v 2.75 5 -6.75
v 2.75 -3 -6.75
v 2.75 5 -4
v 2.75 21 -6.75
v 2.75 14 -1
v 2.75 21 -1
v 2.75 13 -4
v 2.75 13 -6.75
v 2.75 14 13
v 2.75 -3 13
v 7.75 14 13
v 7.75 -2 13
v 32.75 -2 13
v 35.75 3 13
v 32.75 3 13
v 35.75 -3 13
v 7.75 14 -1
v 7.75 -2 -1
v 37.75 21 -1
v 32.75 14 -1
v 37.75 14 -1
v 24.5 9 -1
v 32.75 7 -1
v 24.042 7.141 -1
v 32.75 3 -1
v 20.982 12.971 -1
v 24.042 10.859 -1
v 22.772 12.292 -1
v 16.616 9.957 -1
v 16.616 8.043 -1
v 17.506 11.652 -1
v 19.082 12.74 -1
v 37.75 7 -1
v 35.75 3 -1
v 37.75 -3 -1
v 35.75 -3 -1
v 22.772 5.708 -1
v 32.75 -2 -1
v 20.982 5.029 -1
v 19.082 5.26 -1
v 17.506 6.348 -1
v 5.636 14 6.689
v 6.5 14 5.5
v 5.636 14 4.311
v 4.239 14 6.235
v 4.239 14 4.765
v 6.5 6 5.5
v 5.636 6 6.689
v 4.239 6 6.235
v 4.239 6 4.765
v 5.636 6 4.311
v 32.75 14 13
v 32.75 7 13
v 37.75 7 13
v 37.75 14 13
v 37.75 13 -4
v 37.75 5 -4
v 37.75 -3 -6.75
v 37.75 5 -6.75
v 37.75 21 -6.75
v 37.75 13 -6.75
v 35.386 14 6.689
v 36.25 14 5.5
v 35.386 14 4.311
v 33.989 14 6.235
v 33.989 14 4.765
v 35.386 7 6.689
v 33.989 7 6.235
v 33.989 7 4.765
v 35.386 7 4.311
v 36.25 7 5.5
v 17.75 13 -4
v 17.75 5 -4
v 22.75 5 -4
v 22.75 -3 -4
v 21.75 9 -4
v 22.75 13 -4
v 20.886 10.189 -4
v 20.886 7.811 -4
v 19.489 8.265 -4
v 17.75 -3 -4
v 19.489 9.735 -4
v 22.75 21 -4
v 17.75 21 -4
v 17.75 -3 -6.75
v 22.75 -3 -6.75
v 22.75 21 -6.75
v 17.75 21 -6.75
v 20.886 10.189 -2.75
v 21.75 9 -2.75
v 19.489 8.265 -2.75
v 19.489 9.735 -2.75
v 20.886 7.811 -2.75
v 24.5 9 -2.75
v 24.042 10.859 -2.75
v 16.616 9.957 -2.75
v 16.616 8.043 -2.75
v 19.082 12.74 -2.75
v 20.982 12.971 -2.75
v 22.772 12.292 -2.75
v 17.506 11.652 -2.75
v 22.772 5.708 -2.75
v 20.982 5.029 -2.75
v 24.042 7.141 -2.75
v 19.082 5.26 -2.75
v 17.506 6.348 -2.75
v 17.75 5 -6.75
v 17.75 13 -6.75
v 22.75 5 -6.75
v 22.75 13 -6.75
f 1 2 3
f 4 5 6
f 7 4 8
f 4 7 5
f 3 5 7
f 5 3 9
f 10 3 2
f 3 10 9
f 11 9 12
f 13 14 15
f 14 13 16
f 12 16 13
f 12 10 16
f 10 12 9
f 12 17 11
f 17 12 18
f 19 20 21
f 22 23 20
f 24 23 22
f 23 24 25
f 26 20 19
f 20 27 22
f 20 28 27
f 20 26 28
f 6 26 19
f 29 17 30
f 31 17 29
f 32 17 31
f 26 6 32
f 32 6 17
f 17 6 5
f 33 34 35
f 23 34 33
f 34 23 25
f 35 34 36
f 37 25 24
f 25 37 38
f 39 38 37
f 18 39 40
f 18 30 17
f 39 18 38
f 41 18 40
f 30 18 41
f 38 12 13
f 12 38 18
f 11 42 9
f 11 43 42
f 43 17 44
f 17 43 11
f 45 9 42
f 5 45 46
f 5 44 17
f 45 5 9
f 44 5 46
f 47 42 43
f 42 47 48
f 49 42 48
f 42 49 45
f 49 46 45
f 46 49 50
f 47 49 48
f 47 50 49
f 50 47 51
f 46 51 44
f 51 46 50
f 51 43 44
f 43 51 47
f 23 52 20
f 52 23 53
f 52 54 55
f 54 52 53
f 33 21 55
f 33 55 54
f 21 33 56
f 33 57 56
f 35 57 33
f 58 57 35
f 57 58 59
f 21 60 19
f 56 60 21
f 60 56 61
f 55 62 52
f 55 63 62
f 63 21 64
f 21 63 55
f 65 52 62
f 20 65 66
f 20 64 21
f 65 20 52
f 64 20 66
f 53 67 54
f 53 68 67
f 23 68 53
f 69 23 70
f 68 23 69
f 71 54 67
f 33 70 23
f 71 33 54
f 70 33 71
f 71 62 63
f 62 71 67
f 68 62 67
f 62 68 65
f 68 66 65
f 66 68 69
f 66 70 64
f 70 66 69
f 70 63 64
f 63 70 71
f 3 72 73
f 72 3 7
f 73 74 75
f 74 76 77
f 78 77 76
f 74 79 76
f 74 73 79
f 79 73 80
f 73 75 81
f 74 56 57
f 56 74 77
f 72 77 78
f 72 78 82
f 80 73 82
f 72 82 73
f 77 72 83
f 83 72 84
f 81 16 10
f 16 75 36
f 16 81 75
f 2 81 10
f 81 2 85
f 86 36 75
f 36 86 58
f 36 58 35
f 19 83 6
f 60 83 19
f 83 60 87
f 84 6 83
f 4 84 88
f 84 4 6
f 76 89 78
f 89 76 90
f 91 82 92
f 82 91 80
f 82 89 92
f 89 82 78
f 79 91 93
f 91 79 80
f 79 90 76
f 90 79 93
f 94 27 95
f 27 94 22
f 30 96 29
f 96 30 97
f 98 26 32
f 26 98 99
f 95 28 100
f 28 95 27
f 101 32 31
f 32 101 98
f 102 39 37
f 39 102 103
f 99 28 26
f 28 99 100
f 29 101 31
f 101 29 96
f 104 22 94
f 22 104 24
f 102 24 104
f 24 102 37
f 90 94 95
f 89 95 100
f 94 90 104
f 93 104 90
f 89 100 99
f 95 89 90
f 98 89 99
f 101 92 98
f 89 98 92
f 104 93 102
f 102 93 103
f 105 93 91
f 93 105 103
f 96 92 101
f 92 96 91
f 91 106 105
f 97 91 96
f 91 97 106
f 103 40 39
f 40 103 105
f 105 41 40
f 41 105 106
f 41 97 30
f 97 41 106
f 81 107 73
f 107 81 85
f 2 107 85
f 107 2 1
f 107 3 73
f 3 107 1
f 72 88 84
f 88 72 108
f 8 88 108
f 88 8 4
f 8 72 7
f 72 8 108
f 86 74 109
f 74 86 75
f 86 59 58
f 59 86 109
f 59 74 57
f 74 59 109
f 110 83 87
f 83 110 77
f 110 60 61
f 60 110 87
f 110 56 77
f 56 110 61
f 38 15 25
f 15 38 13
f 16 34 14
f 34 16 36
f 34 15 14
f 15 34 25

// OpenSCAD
difference()
{
translate([2.75,-2,-1])
{
    cube([5,16,14]);
}

translate([5.25,14,5.5])
{
    rotate([90,0,0])
    {
    cylinder(8,1.25,1.25);
    }
}

}

difference()
{
translate([2.75,-3,-4])
{
    cube([35,24,3]);
}

translate([20.5,9,-4.5])
{
cylinder(2,1.25,1.25);
}

translate([20.5,9,-2.75])
{
cylinder(3,4,4);
}


}

translate([2.75,-3,-6.75])
{
cube([15,8,2.75]);
}

translate([2.75,13,-6.75])
{
cube([15,8,2.75]);
}

translate([22.75,-3,-6.75])
{
cube([15,8,2.75]);
}

translate([22.75,13,-6.75])
{
cube([15,8,2.75]);
}

translate([32.75,-2,-1])
{
    cube([3,5,14]);
}

translate([2.75,-3,-1])
{
    cube([33,1,14]);
}


difference()
{
    
translate([32.75,7,-1])
{
    cube([5,7,14]);
}

translate([35,14,5.5])
{
    rotate([90,0,0])
    {
    cylinder(8,1.25,1.25);
    }
}

}

translate([0,0,14])
{
    rotate([-90,0,0])
    {
    //import("servo.stl");
    }
}
